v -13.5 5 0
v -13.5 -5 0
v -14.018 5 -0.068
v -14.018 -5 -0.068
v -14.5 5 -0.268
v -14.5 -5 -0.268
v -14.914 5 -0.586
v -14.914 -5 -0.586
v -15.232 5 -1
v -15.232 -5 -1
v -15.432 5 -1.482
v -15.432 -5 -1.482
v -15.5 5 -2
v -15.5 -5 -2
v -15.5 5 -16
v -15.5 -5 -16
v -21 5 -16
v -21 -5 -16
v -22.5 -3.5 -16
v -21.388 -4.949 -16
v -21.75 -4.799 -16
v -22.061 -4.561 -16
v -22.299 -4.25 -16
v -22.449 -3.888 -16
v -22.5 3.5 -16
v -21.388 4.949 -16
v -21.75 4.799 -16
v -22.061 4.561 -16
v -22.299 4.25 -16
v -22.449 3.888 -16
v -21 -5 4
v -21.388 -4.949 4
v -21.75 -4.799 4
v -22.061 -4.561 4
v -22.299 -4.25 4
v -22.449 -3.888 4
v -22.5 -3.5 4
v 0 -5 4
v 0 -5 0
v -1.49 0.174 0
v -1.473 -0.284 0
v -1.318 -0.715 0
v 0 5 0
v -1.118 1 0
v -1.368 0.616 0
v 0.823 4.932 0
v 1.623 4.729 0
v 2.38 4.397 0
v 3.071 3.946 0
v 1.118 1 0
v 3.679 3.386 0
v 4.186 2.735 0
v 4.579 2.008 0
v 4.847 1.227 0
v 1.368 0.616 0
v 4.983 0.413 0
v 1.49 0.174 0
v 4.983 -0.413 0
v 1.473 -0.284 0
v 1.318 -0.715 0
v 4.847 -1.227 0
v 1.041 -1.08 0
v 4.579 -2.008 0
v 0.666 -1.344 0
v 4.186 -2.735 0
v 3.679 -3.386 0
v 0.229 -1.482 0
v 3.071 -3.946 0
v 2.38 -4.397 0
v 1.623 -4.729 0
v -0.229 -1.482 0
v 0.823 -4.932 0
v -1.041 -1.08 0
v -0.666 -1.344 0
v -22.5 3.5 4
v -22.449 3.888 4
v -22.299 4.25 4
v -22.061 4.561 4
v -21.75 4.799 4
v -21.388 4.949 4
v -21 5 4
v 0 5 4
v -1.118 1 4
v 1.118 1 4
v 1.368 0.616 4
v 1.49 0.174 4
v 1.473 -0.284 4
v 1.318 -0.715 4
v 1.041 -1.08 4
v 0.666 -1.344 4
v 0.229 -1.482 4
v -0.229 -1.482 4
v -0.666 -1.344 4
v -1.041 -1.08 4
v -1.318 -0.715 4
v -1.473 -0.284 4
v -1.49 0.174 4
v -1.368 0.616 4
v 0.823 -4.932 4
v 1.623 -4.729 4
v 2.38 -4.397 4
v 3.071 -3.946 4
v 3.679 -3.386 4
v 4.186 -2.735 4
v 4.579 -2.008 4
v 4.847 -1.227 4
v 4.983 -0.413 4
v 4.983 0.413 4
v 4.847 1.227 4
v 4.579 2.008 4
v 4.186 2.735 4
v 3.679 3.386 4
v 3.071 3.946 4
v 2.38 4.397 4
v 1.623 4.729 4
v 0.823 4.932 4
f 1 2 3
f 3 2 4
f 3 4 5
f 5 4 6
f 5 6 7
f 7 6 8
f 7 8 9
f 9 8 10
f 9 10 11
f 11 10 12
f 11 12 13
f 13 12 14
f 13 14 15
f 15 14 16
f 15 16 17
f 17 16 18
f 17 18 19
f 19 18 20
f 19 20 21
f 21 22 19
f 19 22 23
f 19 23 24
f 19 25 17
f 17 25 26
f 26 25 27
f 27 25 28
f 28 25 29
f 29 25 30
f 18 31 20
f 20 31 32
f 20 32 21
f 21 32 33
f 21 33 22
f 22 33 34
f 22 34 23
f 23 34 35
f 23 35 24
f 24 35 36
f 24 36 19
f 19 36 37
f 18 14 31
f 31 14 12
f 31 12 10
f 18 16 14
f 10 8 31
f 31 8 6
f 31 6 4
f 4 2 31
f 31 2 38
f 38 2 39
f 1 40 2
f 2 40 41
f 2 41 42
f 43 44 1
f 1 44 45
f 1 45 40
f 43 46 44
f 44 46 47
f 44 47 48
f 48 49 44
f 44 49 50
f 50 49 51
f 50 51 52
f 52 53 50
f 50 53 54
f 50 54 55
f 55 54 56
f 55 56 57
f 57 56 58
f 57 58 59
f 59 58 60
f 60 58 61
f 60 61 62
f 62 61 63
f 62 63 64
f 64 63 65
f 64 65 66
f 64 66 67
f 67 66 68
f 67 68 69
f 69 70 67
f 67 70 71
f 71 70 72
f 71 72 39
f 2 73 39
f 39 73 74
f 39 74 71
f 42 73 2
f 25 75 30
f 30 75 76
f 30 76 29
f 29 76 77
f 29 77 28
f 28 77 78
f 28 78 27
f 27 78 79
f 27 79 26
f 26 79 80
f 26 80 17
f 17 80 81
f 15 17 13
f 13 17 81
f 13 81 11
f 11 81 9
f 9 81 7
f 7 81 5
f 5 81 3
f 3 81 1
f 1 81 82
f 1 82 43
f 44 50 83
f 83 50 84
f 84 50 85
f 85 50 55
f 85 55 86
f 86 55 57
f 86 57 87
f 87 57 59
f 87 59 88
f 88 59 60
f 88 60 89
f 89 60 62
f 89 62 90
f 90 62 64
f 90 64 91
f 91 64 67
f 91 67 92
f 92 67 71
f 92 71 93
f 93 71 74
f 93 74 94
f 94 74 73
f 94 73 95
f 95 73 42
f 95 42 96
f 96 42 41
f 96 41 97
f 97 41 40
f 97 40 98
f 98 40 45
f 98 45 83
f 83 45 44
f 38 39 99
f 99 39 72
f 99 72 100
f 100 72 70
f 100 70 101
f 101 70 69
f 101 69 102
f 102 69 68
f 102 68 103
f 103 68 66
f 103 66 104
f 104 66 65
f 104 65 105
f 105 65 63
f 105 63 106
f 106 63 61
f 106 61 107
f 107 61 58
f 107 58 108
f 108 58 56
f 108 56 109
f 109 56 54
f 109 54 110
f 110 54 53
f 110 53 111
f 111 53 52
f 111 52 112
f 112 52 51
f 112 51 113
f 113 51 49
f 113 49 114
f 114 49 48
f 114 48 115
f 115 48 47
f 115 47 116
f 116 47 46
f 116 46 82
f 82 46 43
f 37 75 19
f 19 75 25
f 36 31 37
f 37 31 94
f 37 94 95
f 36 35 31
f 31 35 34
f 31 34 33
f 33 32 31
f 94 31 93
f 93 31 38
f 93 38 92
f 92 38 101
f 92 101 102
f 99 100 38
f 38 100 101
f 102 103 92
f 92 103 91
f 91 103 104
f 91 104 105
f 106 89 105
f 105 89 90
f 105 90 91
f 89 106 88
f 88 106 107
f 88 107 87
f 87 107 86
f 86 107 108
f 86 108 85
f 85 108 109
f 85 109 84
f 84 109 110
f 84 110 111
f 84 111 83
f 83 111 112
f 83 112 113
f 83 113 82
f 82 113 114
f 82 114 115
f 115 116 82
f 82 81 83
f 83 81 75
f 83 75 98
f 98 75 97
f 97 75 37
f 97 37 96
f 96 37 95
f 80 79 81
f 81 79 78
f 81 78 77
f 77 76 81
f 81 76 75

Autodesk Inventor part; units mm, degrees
ref_plane "YZ Plane" through (0, 0, 0) normal (1, 0, 0) x (0, 1, 0)
ref_plane "XZ Plane" through (0, 0, 0) normal (0, 1, 0) x (-1, 0, 0)
ref_plane "XY Plane" through (0, 0, 0) normal (0, 0, 1) x (1, 0, 0)
sketch "Sketch1" plane through (0, 0, 0) normal (0, 0, 1) x (1, 0, 0)
  circle A0 centre (0, 0) radius 1.5
  circle A1 centre (0, 0) radius 5
  line L0 (0, 5) -> (-17.5, 5)
  circle A2 centre (-17.5, 0) radius 5
  line L1 (-17.5, -5) -> (0, -5)
  line L2 (-17.5, 0) -> (0, 0)
  line L3 (-17.5, 5) -> (-22.5, 5)
  line L4 (-22.5, 5) -> (-22.5, -5)
  line L5 (-22.5, -5) -> (-17.5, -5)
  line L6 (-1.118, 1) -> (1.118, 1)
  line L7 (0, 1) -> (0, -1.5)
  point P0 (-22.5, 0)
  dimension "d0" = 3
  dimension "d1" = 3.5
  dimension "d3" = 17.5
  dimension "d12" = 2.5
extrude "Extrusion1" add sketch "Sketch1" along normal blind 4 contours A1 | A1 L1 A2 L2 | L2 A2 L0 A1 | L6 A0 | A2 | A2 L4 L3 | L5 L4 A2
fillet "Fillet1" radius 1.5 2 edges at (-22.5, 5, 2) (-22.5, -5, 2)
sketch "Sketch3" plane through (0, 0, 0) normal (0, 0, -1) x (-1, 0, 0)
  arc A0 (21, -5) -> (22.5, -3.5) centre (21, -3.5) ccw projected
  line L0 (21, -5) -> (0, -5) projected
  arc A1 (0, 5) -> (0, -5) centre (0, 0) ccw projected
  line L1 (0, 5) -> (21, 5) projected
  arc A2 (22.5, 3.5) -> (21, 5) centre (21, 3.5) ccw projected
  line L2 (22.5, 3.5) -> (22.5, -3.5) projected
  arc A3 (-1.118, 1) -> (1.118, 1) centre (0, 0) ccw projected
  line L3 (0, 5) -> (21, 5) projected
  arc A4 (22.5, 3.5) -> (21, 5) centre (21, 3.5) ccw projected
  line L4 (15.5, 5) -> (15.5, -5)
  line L5 (21, -5) -> (0, -5) projected
  line L6 (1.118, 1) -> (-1.118, 1) projected
  dimension "d8" = 7
extrude "Extrusion2" add sketch "Sketch3" along normal blind 16 contours L0 L4 L1 A2 L2 A0
fillet "Fillet2" radius 2 1 edges at (-15.5, 0, 0)
properties part number "AcoplePPR"
